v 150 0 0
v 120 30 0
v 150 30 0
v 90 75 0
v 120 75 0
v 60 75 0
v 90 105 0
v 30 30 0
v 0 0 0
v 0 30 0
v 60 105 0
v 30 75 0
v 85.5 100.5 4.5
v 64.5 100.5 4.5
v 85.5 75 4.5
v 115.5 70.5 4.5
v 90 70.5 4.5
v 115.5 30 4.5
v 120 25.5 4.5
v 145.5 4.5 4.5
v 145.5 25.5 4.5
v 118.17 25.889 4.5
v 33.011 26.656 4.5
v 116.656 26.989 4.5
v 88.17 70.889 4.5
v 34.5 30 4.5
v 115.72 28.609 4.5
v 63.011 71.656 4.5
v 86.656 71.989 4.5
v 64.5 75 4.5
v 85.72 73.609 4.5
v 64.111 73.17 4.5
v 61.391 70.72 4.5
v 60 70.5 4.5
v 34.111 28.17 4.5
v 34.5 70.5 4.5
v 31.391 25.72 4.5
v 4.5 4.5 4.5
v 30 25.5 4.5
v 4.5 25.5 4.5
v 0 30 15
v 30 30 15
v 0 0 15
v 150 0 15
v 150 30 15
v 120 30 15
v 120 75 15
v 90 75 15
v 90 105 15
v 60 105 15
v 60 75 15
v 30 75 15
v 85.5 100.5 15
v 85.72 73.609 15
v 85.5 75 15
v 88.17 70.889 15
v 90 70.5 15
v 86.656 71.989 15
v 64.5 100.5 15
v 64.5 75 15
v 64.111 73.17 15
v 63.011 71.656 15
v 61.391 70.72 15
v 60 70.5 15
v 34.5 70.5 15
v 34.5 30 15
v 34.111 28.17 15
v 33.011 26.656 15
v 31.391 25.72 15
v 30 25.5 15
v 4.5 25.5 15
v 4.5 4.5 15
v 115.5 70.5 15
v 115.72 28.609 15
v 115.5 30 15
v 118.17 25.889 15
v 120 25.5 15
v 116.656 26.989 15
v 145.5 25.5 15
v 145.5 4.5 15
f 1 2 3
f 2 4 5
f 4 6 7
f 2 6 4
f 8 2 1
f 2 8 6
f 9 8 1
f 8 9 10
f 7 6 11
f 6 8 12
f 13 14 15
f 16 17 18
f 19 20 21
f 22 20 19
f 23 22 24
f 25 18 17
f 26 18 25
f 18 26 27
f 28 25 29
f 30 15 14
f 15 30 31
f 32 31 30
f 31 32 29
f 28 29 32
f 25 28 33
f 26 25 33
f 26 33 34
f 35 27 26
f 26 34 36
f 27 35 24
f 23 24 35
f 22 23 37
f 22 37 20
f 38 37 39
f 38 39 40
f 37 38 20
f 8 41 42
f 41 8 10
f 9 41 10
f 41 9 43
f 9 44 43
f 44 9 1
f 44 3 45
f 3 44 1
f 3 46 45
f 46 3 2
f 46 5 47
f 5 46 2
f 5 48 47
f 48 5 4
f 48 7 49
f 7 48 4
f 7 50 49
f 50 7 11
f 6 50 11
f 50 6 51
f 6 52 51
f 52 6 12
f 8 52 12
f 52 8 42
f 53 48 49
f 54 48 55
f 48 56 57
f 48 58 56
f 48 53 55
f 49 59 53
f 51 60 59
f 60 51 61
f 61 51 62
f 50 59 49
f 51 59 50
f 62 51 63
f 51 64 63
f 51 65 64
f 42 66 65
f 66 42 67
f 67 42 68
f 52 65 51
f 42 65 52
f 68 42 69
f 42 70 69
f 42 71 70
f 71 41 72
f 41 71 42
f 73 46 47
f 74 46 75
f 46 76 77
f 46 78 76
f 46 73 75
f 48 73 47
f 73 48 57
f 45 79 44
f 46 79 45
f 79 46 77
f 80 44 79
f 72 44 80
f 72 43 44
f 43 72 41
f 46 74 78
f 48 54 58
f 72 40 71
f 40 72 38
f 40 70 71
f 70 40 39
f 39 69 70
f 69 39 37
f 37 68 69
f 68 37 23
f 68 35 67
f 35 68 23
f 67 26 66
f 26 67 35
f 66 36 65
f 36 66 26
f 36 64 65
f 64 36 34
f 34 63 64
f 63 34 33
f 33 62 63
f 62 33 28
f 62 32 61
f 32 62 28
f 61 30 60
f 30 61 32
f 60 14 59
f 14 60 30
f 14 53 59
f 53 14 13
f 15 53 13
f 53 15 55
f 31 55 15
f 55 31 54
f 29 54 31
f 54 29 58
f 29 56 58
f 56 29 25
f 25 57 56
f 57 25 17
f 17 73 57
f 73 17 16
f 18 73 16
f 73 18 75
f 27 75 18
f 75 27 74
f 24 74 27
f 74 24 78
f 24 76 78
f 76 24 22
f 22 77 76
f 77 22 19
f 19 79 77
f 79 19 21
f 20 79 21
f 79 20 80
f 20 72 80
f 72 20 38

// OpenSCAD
color("green")
linear_extrude(15-10.5)
    union() {
        square([150,30]);
        translate([30,30]) square([90,45]);
        translate([30+30,30+45]) square([30,30]);
    }

color("cyan")
linear_extrude(15)
    difference() {
        union() {
            square([150,30]);
            translate([30,30]) square([90,45]);
            translate([30+30,30+45]) square([30,30]);
        }
        
        offset(-4.5) {
            union() {
                square([150,30]);
                translate([30,30]) square([90,45]);
                translate([30+30,30+45]) square([30,30]);
            }
        }
    }
